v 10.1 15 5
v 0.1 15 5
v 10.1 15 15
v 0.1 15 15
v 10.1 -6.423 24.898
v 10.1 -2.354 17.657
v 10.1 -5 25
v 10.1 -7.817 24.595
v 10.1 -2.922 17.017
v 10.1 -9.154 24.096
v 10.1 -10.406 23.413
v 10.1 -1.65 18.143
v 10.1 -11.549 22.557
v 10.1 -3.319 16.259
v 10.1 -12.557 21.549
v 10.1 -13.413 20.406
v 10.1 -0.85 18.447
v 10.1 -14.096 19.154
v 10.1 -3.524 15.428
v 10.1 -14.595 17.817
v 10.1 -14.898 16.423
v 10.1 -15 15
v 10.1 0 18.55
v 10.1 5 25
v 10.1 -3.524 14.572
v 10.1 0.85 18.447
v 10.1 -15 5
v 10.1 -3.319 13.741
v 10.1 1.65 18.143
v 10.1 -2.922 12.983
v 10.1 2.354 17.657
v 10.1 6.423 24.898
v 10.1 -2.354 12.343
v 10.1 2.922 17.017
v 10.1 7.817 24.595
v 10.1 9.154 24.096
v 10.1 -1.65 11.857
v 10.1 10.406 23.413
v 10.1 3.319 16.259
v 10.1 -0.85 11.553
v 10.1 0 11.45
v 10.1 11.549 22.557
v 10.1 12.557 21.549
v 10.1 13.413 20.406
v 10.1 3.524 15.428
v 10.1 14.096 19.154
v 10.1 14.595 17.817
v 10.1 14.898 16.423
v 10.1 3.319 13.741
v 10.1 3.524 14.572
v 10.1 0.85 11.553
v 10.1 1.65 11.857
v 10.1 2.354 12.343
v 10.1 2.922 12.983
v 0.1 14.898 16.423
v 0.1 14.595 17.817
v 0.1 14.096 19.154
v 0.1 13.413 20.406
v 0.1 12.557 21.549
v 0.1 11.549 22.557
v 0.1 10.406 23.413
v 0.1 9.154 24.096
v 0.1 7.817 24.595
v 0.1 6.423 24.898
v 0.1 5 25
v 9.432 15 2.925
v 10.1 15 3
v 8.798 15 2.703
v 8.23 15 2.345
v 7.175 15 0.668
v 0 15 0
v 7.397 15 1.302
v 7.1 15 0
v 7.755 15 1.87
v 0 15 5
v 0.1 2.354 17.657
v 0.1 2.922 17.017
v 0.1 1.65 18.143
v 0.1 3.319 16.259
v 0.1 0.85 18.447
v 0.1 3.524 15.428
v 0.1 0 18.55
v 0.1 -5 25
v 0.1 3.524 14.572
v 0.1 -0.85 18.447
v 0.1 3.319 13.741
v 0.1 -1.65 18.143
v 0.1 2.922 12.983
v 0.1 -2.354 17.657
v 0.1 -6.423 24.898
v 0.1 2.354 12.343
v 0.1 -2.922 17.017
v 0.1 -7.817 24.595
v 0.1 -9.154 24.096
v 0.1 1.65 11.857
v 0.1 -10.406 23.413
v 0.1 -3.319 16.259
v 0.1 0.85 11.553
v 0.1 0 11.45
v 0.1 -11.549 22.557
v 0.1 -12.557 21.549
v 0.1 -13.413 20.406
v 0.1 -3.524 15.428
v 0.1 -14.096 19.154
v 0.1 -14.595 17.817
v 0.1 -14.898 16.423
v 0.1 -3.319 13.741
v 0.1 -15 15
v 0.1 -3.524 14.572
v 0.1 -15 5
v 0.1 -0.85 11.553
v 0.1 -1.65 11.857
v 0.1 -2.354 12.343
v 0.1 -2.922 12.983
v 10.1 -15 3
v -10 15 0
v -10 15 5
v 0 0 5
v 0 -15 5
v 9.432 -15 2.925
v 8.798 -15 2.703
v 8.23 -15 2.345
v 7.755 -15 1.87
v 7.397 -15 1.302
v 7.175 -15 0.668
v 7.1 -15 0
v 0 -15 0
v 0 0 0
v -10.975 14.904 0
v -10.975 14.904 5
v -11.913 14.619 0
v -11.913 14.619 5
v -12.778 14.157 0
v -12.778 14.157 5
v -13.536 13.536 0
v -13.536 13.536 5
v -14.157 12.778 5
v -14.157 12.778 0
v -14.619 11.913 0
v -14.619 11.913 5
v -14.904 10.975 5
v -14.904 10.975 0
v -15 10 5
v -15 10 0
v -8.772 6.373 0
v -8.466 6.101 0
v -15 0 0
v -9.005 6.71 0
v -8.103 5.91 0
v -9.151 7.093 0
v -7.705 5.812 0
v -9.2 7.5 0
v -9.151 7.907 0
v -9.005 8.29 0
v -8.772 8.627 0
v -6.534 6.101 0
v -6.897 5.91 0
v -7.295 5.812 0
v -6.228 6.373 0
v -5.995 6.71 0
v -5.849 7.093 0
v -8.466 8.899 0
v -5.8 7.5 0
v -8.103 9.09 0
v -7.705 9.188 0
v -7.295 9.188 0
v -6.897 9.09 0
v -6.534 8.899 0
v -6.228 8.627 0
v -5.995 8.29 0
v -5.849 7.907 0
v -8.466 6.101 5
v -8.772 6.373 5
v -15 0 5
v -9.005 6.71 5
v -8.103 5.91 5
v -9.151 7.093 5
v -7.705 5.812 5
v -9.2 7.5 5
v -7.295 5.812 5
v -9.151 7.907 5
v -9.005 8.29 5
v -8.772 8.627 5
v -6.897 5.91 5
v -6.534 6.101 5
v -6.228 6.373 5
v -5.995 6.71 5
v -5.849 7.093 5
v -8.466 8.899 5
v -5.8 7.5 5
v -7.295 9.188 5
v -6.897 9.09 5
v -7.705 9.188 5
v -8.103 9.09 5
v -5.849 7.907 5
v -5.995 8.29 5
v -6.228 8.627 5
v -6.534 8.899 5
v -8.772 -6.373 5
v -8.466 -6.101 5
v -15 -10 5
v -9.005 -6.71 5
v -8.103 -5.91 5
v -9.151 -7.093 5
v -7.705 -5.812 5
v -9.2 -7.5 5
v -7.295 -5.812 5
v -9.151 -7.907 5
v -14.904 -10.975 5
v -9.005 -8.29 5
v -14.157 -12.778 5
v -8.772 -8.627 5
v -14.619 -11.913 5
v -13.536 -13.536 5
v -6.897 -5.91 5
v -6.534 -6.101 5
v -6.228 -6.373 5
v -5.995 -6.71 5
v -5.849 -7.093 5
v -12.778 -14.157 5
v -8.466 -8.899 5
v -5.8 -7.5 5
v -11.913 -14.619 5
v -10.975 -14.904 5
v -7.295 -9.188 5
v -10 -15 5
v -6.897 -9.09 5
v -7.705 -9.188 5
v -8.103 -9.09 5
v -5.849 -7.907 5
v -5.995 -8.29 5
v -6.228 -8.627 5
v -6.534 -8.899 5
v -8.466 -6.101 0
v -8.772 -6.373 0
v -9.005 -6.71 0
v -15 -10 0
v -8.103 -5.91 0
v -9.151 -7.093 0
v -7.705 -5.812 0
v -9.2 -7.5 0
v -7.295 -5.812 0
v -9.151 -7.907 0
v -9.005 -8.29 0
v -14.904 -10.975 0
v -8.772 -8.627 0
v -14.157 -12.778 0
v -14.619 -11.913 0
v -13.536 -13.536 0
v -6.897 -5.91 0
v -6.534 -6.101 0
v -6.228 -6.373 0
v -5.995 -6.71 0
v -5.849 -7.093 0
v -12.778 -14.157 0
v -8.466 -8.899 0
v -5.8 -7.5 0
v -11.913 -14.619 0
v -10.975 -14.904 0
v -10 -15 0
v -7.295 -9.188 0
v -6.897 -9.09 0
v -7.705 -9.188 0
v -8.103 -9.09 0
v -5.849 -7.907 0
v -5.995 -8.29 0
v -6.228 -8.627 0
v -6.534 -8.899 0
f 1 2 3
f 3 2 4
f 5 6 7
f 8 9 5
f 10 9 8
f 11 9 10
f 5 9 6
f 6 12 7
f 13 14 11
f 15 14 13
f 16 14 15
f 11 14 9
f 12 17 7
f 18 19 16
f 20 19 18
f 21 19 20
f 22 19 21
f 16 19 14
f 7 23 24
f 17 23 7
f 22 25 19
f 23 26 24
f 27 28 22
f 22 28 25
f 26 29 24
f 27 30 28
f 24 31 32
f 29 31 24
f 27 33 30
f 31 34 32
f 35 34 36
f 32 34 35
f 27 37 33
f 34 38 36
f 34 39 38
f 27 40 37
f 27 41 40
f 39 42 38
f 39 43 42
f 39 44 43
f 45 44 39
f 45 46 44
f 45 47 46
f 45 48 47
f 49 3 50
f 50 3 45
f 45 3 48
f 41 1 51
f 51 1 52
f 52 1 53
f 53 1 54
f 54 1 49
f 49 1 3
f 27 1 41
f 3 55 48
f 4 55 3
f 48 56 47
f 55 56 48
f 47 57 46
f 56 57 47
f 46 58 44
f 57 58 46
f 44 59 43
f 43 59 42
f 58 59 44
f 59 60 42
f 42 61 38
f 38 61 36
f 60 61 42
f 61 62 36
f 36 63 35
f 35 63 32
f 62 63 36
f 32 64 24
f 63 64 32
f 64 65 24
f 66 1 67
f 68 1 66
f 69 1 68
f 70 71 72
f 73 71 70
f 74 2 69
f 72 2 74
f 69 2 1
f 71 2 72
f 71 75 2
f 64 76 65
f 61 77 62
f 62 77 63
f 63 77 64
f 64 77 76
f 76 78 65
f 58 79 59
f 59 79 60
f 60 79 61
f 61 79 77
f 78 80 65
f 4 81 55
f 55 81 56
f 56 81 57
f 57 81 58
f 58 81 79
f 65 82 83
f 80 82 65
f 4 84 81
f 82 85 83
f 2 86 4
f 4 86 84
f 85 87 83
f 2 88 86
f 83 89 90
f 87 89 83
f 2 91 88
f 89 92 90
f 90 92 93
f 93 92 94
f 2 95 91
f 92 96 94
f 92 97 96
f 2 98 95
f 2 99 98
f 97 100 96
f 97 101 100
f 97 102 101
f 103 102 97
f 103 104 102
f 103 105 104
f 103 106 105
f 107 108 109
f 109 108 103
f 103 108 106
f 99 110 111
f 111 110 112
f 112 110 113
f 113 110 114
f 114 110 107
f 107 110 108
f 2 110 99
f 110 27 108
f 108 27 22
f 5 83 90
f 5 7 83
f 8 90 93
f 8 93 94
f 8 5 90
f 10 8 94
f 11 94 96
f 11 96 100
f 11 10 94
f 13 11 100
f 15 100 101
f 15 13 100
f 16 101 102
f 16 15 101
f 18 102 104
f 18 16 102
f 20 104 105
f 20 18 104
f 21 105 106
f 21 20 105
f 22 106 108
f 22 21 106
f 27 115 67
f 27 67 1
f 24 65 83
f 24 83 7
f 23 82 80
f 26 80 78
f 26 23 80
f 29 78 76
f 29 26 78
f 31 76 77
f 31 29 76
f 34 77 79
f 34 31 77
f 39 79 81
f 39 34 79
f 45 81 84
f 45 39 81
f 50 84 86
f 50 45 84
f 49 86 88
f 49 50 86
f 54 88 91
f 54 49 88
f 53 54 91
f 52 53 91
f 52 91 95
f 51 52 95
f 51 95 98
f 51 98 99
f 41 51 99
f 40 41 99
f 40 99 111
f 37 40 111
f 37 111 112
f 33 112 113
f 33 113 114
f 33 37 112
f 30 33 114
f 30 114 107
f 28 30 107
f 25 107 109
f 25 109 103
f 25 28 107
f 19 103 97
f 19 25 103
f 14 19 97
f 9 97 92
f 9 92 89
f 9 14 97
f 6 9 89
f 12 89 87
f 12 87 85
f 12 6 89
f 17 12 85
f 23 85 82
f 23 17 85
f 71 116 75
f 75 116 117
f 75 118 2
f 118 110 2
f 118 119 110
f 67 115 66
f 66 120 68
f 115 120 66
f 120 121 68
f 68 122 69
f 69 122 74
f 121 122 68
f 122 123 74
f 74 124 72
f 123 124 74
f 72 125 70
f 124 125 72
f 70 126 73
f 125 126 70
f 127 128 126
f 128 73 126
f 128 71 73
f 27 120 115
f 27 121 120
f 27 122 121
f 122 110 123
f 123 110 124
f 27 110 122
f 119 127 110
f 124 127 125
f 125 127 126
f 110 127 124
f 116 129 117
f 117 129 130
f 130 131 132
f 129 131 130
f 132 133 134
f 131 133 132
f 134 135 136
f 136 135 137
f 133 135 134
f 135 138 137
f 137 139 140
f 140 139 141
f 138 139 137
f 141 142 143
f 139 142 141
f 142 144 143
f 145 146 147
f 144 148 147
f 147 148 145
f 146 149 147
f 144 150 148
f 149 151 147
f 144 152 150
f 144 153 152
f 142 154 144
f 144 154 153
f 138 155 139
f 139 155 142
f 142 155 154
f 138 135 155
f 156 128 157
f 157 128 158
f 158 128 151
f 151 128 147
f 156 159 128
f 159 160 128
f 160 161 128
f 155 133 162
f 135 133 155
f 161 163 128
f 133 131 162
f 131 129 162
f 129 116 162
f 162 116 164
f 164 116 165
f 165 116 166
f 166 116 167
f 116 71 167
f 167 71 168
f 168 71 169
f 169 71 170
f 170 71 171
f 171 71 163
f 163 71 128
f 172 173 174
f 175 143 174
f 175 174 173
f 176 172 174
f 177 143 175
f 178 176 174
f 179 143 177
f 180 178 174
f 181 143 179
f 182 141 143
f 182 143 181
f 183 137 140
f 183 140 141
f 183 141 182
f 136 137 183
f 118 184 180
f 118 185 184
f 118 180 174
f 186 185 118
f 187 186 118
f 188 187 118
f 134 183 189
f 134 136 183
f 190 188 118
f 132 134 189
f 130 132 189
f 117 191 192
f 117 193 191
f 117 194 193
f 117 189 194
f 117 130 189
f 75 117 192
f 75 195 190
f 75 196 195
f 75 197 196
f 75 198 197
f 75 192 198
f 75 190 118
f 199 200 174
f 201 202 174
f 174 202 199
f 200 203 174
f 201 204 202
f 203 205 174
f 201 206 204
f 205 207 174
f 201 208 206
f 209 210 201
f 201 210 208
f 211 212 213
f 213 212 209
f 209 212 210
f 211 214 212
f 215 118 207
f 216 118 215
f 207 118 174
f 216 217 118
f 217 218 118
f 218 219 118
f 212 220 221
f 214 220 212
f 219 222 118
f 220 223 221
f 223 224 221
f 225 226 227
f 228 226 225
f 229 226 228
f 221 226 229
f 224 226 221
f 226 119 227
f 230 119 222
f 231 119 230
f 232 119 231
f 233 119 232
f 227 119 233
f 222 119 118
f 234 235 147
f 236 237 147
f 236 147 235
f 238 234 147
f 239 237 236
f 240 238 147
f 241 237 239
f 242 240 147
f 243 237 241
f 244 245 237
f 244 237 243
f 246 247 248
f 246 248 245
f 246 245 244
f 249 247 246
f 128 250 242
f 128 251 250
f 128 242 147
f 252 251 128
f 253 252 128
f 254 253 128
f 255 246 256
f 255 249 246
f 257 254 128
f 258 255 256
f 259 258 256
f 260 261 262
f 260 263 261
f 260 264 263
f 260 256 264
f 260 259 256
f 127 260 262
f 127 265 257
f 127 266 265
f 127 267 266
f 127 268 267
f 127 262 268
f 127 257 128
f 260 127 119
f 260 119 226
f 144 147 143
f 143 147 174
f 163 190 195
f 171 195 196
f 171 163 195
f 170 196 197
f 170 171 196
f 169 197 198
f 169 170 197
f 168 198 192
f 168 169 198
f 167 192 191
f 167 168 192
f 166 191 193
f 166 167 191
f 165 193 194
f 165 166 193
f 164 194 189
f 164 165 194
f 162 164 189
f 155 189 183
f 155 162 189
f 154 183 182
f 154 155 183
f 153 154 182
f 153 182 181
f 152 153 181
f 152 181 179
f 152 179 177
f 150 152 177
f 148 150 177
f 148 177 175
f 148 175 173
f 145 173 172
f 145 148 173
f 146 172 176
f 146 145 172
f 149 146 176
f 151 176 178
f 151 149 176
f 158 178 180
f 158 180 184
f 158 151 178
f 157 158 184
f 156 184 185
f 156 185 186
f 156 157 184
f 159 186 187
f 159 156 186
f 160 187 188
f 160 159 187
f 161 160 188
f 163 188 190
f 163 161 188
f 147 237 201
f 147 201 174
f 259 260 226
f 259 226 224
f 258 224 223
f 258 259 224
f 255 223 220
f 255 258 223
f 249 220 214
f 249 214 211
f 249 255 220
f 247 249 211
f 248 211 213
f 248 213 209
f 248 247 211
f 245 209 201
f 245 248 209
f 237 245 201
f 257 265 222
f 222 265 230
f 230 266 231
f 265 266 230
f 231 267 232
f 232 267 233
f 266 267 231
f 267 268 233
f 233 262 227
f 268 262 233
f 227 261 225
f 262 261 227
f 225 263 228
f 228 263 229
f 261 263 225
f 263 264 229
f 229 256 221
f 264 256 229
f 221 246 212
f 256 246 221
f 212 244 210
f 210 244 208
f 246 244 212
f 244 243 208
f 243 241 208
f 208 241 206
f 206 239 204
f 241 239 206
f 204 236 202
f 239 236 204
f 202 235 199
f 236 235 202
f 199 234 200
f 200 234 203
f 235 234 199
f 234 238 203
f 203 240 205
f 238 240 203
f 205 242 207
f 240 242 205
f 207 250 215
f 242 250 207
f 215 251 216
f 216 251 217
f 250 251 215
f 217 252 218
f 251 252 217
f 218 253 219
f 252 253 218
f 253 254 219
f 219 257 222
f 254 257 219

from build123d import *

# Parameters (mm, degrees)
PAD_DEPTH     = 5
SKETCH001_R   = 1.7
HOLE_DEPTH    = 72.8243
SKETCH002_W   = 30
SKETCH002_H   = 5
PAD001_DEPTH  = 10.1
SKETCH003_W   = 10
SKETCH003_H   = 30
PAD002_DEPTH  = 20
SKETCH005_R   = 3.55
HOLE001_DEPTH = 10.001
POCKET_DEPTH  = 30.001
FILLET_R      = 10


with BuildPart() as part:
    # Sketch → Pad (new body)
    with BuildSketch(Plane.XY):
        with BuildLine():
            Line((-15, 0), (0, 0))
            Line((0, 0), (0, 15))
            Line((0, 15), (-10, 15))
            ThreePointArc((-10, 15), (-13.535534, 13.535534), (-15, 10))
            Line((-15, 10), (-15, 0))
        make_face()
    pad = extrude(amount=PAD_DEPTH)

    # Mirrored: Pad across XZ
    add(pad.mirror(Plane.XZ))

    # Sketch001 (on Face5 of Mirrored) → Hole (cut, through all)
    with BuildSketch(Plane.XY.offset(5)):
        with Locations((-7.5, 7.5)):
            Circle(SKETCH001_R)
    hole = extrude(amount=-HOLE_DEPTH, mode=Mode.SUBTRACT)

    # Mirrored001: Hole across XZ
    add(hole.mirror(Plane.XZ), mode=Mode.SUBTRACT)

    # Sketch002 (on Face2 of Mirrored001) → Pad001 (join)
    with BuildSketch(Plane.YZ):
        with Locations((0, 2.5)):
            Rectangle(SKETCH002_W, SKETCH002_H)
    extrude(amount=PAD001_DEPTH)

    # Sketch003 (on Face7 of Pad001) → Pad002 (join)
    with BuildSketch(Plane.XY.offset(5)):
        with Locations((5.1, 0)):
            Rectangle(SKETCH003_W, SKETCH003_H)
    extrude(amount=PAD002_DEPTH)

    # Sketch005 (on Face15 of Pad002) → Hole001 (cut, through all)
    with BuildSketch(Plane(origin=(0.1, 0, 0), x_dir=(0, -1, 0), z_dir=(-1, 0, 0))):
        with Locations((0, 15)):
            Circle(SKETCH005_R)
    extrude(amount=-HOLE001_DEPTH, mode=Mode.SUBTRACT)

    # Sketch006 (on Face14 of Hole001) → Pocket (cut, through all)
    with BuildSketch(Plane.XZ.offset(15)):
        with BuildLine():
            ThreePointArc((10.1, 3), (7.97868, 2.12132), (7.1, 0))
            Line((10.1, 0), (7.1, 0))
            Line((10.1, 3), (10.1, 0))
        make_face()
    extrude(amount=-POCKET_DEPTH, mode=Mode.SUBTRACT)

    # Fillet
    fillet_edges = [part.edges().sort_by_distance(p)[0] for p in [
        (5.1, -15, 25),
        (5.1, 15, 25),
    ]]
    fillet(fillet_edges, radius=FILLET_R)


solid = part.part
